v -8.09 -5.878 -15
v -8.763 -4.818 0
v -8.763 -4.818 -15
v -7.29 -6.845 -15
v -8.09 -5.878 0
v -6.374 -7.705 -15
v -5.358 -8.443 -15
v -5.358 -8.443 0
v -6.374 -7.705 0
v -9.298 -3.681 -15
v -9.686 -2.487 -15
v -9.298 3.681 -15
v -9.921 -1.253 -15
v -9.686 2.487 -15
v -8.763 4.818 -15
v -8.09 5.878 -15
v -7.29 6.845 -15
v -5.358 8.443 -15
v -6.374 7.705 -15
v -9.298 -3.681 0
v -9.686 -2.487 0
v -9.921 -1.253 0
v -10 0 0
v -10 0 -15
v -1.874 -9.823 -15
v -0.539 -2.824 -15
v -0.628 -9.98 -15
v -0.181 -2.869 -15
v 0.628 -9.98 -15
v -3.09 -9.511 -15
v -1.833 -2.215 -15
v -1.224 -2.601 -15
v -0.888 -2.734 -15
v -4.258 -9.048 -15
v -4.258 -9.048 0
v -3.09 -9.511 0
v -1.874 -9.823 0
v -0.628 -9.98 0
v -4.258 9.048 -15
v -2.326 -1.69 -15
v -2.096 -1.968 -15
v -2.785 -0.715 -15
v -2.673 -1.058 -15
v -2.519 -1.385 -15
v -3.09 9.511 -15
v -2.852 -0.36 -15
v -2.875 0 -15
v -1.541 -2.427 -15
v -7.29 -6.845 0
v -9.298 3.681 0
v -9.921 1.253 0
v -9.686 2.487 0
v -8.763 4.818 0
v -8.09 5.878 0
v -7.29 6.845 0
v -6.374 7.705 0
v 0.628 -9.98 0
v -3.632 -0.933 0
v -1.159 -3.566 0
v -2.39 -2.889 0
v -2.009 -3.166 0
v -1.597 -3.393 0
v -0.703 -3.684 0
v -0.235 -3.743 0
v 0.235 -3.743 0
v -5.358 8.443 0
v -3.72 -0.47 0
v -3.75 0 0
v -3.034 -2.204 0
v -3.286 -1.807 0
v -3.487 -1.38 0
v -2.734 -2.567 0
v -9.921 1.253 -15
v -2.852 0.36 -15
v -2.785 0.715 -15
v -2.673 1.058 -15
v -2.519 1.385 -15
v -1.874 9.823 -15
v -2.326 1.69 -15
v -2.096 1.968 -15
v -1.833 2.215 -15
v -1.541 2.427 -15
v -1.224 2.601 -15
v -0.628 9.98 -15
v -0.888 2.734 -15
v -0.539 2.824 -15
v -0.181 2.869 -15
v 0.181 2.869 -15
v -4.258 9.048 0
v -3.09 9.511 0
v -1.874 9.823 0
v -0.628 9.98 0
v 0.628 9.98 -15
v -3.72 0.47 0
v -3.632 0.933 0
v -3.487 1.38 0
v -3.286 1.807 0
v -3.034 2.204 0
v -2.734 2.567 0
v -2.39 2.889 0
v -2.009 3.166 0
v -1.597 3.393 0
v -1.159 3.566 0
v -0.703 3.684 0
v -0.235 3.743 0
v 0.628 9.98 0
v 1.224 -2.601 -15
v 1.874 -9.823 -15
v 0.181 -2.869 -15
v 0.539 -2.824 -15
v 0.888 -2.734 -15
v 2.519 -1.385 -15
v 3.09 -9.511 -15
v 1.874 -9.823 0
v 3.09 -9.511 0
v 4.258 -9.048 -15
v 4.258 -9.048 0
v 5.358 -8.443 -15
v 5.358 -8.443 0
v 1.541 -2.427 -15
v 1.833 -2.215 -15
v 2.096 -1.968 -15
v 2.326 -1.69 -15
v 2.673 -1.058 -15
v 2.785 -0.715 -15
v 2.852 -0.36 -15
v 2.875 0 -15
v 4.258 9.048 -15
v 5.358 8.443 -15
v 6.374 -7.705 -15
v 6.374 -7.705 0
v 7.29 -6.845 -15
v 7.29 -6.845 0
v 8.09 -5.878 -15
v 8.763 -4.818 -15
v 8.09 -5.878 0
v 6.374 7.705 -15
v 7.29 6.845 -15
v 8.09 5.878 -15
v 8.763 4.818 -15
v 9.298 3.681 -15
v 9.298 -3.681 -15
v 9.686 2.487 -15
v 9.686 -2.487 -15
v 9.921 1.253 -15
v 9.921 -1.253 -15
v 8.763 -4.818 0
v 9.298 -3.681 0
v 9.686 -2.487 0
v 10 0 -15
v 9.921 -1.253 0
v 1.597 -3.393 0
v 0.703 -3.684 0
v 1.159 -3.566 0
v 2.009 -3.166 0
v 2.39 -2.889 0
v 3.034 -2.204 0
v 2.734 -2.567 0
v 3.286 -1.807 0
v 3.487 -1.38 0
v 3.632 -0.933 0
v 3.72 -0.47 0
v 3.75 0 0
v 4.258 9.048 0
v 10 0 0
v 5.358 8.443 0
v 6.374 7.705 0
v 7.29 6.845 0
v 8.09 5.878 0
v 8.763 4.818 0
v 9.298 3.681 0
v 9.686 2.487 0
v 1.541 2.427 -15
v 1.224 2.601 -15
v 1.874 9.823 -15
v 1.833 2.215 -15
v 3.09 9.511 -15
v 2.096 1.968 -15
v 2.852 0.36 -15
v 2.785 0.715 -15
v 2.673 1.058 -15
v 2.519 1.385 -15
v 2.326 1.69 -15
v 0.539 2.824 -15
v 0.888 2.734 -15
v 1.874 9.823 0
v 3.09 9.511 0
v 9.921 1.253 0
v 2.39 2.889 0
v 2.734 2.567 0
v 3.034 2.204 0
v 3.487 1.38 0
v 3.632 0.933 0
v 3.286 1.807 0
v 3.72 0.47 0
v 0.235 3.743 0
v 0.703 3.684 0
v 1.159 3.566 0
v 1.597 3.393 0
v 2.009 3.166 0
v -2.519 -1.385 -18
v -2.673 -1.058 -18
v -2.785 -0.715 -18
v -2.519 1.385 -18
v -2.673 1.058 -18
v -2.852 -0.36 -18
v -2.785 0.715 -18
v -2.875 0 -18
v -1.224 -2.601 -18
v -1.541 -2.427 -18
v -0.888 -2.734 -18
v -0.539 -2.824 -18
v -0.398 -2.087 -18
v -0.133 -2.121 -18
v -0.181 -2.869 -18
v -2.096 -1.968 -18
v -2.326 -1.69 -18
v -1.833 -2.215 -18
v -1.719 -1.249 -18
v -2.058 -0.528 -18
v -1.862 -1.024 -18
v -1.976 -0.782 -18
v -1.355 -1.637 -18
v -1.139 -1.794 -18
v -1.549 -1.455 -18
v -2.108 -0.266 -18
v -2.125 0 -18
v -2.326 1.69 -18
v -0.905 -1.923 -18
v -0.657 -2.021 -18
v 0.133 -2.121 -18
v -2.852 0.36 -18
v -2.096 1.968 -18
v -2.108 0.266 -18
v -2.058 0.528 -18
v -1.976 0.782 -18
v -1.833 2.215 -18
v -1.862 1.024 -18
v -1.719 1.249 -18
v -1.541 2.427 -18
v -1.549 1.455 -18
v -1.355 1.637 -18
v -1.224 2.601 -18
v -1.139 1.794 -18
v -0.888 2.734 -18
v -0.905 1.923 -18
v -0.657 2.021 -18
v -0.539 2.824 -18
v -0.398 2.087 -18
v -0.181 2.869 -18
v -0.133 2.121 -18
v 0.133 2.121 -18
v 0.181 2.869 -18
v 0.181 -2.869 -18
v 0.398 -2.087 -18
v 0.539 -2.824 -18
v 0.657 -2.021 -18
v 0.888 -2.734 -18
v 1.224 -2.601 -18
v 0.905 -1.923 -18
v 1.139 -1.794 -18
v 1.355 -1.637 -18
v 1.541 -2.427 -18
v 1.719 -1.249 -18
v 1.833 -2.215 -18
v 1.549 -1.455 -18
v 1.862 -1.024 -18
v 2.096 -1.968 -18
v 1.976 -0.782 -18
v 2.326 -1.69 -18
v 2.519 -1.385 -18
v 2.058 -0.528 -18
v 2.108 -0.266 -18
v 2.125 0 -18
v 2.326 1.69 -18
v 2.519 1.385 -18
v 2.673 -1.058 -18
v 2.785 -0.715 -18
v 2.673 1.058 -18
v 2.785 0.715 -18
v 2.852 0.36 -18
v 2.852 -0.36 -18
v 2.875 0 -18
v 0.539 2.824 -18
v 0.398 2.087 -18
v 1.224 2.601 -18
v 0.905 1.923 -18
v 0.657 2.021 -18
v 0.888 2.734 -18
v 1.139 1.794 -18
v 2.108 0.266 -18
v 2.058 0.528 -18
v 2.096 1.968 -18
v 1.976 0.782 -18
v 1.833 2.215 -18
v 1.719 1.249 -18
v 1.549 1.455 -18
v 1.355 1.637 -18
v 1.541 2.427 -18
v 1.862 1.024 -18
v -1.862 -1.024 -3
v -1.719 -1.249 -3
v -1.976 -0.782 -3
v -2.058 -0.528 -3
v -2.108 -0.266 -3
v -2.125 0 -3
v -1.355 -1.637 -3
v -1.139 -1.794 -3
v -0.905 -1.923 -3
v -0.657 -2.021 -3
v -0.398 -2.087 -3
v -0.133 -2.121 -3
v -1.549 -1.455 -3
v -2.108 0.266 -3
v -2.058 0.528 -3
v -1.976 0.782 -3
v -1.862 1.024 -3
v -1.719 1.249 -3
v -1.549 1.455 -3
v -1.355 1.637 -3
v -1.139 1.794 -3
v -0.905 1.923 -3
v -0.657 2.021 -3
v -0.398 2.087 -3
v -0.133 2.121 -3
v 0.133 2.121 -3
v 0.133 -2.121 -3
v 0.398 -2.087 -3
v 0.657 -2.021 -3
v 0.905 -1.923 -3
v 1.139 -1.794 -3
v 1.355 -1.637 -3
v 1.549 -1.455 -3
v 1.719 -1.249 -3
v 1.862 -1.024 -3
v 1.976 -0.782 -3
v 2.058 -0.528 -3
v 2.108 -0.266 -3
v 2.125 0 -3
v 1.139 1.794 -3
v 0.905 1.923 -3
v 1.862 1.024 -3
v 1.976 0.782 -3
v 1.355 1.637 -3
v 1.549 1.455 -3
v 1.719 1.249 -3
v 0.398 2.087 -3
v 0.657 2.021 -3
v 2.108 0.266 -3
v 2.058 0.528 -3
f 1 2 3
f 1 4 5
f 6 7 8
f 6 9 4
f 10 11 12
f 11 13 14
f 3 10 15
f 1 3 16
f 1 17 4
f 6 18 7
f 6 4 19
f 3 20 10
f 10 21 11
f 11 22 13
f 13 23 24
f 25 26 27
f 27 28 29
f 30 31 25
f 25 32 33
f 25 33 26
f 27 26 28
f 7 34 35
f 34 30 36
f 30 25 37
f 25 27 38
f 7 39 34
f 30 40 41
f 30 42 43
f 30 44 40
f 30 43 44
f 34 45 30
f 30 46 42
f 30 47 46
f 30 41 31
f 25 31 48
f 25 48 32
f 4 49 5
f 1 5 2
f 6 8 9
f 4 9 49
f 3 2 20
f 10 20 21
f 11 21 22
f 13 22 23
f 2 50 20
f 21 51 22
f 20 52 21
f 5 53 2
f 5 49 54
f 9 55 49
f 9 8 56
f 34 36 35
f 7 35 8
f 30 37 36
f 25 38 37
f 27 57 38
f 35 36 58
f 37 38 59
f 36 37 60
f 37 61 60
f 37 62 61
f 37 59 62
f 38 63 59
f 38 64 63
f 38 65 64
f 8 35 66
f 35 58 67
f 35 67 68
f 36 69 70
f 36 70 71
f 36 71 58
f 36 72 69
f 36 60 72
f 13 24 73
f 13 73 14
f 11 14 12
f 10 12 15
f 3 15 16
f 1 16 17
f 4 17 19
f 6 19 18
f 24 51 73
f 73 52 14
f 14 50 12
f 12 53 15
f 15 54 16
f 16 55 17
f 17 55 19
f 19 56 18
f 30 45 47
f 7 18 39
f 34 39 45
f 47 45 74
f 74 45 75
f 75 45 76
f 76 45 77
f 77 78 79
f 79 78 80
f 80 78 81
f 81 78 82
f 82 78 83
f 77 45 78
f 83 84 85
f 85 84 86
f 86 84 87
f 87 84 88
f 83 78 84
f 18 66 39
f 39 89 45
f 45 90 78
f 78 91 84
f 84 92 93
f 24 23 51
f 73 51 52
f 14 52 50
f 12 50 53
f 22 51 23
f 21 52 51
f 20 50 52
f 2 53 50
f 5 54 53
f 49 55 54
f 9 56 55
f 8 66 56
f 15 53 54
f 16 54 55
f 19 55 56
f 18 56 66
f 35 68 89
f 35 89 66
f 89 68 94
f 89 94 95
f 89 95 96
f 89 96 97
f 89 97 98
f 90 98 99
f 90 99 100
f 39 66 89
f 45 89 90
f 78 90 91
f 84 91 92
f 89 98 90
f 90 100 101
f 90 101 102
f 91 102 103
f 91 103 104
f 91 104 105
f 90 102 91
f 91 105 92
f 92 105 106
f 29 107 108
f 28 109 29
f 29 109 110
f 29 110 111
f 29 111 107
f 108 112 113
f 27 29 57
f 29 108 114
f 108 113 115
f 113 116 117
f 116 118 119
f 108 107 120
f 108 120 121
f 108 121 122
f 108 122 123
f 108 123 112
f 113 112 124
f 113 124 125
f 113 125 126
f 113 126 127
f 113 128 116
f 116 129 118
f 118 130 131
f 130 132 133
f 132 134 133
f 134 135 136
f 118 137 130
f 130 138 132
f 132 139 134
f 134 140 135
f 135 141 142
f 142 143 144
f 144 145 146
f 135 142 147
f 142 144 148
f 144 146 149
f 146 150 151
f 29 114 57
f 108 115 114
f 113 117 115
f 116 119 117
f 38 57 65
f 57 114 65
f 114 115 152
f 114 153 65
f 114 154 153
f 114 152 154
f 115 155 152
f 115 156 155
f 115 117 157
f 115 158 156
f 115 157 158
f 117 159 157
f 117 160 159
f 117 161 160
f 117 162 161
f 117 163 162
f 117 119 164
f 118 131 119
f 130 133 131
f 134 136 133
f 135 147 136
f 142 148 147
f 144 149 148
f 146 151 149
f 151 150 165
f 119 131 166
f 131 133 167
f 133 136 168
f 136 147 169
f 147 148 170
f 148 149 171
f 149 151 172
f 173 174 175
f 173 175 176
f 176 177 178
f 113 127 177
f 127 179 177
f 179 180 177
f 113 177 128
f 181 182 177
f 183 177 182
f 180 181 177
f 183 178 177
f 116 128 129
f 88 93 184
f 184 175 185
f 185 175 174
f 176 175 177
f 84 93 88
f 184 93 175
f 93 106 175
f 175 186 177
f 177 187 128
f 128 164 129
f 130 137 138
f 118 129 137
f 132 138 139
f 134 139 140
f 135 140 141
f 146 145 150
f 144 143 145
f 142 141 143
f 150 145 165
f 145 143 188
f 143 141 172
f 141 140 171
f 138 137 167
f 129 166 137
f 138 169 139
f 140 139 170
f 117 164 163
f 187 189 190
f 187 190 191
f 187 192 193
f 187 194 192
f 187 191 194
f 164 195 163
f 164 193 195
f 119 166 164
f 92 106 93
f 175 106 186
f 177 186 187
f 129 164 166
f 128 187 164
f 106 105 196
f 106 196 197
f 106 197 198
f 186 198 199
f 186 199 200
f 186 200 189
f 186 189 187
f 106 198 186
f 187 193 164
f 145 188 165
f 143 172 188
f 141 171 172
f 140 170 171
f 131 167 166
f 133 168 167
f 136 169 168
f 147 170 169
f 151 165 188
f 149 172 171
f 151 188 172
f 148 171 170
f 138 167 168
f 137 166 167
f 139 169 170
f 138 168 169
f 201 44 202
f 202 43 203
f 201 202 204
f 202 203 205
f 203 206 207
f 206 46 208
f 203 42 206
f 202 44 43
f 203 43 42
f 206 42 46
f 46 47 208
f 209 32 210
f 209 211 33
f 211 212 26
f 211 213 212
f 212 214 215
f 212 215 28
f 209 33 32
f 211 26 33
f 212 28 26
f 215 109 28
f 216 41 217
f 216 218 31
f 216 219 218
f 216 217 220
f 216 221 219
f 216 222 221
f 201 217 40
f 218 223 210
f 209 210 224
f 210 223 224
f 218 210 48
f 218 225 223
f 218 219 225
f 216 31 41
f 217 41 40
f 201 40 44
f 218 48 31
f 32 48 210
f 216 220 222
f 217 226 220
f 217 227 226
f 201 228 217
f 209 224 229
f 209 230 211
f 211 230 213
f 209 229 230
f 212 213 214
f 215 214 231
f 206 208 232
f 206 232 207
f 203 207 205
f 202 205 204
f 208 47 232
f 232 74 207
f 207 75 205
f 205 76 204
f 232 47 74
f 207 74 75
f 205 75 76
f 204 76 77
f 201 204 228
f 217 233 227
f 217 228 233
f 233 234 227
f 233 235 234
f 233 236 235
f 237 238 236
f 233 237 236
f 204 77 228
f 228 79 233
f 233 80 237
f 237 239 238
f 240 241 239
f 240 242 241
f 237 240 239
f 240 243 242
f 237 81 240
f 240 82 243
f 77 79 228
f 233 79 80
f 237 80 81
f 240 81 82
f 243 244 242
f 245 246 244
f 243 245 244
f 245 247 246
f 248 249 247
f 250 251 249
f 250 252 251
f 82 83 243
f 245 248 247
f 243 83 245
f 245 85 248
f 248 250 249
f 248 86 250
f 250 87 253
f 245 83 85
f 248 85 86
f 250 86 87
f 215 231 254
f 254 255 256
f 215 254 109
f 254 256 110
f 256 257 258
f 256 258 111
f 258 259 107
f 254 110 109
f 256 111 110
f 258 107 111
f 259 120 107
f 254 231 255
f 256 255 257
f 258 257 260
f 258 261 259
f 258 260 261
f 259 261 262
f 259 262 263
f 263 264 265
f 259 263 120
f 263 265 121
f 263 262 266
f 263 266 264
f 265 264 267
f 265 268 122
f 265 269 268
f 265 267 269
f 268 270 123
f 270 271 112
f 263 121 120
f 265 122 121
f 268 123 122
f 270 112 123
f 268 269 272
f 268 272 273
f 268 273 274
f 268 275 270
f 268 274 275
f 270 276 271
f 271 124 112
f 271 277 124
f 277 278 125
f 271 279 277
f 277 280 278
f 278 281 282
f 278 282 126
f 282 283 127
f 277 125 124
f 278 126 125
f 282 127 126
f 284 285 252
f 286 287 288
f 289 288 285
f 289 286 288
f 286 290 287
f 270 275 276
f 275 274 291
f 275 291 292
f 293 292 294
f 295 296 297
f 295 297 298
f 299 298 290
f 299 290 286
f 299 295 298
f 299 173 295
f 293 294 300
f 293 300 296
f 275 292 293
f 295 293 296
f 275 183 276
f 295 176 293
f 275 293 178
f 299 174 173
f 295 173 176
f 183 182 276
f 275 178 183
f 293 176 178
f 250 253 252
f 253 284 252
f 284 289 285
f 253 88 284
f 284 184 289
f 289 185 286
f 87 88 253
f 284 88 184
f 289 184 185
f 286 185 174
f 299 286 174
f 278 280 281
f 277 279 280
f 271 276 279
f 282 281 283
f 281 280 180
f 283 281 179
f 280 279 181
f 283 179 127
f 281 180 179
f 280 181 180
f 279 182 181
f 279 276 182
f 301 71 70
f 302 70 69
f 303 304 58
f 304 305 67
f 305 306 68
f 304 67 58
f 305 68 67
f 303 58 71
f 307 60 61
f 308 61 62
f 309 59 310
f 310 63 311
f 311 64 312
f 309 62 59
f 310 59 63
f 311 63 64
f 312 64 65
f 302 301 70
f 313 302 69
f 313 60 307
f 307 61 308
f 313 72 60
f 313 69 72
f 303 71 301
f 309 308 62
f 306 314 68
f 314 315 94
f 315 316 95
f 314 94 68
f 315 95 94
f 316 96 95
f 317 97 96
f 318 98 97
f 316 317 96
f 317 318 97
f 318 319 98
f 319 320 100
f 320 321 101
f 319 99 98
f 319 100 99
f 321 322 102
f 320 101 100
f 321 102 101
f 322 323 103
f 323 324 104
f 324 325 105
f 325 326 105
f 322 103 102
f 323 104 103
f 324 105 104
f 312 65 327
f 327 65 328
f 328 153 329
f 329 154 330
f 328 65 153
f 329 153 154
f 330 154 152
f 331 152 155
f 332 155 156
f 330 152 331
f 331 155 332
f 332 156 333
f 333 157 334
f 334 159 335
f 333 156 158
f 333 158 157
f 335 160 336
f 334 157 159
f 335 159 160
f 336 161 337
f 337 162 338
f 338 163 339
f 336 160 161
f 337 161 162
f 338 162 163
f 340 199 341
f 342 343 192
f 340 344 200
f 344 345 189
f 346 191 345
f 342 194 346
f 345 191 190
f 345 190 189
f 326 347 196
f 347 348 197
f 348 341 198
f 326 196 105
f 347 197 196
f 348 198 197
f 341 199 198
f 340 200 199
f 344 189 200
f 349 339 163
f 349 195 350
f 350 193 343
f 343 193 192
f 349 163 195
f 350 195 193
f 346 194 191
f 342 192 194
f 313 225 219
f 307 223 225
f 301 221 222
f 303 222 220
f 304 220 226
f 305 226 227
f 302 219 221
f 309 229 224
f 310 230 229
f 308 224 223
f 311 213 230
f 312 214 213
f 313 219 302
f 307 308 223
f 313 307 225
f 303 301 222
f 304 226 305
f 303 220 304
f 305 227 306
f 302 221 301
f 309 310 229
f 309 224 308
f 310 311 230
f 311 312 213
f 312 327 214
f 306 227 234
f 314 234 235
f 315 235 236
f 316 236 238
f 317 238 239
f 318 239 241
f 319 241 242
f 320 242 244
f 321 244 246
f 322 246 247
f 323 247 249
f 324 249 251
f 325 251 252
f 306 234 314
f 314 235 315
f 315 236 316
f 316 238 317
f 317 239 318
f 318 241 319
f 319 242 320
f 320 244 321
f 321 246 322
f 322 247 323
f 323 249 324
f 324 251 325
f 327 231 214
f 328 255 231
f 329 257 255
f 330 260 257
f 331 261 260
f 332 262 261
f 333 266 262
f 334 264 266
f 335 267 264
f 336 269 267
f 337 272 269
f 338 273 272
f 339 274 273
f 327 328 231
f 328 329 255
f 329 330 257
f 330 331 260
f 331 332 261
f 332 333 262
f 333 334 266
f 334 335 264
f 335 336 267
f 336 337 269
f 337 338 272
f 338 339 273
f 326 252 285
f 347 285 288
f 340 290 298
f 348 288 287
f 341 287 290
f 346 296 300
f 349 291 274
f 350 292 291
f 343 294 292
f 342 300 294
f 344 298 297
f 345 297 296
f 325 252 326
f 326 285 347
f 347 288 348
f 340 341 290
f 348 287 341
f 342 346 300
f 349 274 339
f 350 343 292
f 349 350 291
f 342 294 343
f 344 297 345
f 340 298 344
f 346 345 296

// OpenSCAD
$fn = 50;

difference() {
	union() {
		translate(v = [0, 0, -15.0]) {
			cylinder(h = 15, r = 10.0);
		}
		#translate(v = [0, 0, -18.0]) {
			cylinder(h = 18, r = 2.875);
		}
	}
	union() {
		translate(v = [0, 0, 0]) {
			rotate(a = [0, 0, 0]) {
				difference() {
					union() {
						translate(v = [0, 0, -18.0]) {
							cylinder(h = 18, r = 2.0);
						}
						translate(v = [0, 0, -3]) {
							cylinder(h = 3, r1 = 2.125, r2 = 3.75);
						}
						translate(v = [0, 0, -18.0]) {
							cylinder(h = 18, r = 2.125);
						}
						translate(v = [0, 0, -18.0]) {
							cylinder(h = 18, r = 2.0);
						}
					}
					union();
				}
			}
		}
	}
}
